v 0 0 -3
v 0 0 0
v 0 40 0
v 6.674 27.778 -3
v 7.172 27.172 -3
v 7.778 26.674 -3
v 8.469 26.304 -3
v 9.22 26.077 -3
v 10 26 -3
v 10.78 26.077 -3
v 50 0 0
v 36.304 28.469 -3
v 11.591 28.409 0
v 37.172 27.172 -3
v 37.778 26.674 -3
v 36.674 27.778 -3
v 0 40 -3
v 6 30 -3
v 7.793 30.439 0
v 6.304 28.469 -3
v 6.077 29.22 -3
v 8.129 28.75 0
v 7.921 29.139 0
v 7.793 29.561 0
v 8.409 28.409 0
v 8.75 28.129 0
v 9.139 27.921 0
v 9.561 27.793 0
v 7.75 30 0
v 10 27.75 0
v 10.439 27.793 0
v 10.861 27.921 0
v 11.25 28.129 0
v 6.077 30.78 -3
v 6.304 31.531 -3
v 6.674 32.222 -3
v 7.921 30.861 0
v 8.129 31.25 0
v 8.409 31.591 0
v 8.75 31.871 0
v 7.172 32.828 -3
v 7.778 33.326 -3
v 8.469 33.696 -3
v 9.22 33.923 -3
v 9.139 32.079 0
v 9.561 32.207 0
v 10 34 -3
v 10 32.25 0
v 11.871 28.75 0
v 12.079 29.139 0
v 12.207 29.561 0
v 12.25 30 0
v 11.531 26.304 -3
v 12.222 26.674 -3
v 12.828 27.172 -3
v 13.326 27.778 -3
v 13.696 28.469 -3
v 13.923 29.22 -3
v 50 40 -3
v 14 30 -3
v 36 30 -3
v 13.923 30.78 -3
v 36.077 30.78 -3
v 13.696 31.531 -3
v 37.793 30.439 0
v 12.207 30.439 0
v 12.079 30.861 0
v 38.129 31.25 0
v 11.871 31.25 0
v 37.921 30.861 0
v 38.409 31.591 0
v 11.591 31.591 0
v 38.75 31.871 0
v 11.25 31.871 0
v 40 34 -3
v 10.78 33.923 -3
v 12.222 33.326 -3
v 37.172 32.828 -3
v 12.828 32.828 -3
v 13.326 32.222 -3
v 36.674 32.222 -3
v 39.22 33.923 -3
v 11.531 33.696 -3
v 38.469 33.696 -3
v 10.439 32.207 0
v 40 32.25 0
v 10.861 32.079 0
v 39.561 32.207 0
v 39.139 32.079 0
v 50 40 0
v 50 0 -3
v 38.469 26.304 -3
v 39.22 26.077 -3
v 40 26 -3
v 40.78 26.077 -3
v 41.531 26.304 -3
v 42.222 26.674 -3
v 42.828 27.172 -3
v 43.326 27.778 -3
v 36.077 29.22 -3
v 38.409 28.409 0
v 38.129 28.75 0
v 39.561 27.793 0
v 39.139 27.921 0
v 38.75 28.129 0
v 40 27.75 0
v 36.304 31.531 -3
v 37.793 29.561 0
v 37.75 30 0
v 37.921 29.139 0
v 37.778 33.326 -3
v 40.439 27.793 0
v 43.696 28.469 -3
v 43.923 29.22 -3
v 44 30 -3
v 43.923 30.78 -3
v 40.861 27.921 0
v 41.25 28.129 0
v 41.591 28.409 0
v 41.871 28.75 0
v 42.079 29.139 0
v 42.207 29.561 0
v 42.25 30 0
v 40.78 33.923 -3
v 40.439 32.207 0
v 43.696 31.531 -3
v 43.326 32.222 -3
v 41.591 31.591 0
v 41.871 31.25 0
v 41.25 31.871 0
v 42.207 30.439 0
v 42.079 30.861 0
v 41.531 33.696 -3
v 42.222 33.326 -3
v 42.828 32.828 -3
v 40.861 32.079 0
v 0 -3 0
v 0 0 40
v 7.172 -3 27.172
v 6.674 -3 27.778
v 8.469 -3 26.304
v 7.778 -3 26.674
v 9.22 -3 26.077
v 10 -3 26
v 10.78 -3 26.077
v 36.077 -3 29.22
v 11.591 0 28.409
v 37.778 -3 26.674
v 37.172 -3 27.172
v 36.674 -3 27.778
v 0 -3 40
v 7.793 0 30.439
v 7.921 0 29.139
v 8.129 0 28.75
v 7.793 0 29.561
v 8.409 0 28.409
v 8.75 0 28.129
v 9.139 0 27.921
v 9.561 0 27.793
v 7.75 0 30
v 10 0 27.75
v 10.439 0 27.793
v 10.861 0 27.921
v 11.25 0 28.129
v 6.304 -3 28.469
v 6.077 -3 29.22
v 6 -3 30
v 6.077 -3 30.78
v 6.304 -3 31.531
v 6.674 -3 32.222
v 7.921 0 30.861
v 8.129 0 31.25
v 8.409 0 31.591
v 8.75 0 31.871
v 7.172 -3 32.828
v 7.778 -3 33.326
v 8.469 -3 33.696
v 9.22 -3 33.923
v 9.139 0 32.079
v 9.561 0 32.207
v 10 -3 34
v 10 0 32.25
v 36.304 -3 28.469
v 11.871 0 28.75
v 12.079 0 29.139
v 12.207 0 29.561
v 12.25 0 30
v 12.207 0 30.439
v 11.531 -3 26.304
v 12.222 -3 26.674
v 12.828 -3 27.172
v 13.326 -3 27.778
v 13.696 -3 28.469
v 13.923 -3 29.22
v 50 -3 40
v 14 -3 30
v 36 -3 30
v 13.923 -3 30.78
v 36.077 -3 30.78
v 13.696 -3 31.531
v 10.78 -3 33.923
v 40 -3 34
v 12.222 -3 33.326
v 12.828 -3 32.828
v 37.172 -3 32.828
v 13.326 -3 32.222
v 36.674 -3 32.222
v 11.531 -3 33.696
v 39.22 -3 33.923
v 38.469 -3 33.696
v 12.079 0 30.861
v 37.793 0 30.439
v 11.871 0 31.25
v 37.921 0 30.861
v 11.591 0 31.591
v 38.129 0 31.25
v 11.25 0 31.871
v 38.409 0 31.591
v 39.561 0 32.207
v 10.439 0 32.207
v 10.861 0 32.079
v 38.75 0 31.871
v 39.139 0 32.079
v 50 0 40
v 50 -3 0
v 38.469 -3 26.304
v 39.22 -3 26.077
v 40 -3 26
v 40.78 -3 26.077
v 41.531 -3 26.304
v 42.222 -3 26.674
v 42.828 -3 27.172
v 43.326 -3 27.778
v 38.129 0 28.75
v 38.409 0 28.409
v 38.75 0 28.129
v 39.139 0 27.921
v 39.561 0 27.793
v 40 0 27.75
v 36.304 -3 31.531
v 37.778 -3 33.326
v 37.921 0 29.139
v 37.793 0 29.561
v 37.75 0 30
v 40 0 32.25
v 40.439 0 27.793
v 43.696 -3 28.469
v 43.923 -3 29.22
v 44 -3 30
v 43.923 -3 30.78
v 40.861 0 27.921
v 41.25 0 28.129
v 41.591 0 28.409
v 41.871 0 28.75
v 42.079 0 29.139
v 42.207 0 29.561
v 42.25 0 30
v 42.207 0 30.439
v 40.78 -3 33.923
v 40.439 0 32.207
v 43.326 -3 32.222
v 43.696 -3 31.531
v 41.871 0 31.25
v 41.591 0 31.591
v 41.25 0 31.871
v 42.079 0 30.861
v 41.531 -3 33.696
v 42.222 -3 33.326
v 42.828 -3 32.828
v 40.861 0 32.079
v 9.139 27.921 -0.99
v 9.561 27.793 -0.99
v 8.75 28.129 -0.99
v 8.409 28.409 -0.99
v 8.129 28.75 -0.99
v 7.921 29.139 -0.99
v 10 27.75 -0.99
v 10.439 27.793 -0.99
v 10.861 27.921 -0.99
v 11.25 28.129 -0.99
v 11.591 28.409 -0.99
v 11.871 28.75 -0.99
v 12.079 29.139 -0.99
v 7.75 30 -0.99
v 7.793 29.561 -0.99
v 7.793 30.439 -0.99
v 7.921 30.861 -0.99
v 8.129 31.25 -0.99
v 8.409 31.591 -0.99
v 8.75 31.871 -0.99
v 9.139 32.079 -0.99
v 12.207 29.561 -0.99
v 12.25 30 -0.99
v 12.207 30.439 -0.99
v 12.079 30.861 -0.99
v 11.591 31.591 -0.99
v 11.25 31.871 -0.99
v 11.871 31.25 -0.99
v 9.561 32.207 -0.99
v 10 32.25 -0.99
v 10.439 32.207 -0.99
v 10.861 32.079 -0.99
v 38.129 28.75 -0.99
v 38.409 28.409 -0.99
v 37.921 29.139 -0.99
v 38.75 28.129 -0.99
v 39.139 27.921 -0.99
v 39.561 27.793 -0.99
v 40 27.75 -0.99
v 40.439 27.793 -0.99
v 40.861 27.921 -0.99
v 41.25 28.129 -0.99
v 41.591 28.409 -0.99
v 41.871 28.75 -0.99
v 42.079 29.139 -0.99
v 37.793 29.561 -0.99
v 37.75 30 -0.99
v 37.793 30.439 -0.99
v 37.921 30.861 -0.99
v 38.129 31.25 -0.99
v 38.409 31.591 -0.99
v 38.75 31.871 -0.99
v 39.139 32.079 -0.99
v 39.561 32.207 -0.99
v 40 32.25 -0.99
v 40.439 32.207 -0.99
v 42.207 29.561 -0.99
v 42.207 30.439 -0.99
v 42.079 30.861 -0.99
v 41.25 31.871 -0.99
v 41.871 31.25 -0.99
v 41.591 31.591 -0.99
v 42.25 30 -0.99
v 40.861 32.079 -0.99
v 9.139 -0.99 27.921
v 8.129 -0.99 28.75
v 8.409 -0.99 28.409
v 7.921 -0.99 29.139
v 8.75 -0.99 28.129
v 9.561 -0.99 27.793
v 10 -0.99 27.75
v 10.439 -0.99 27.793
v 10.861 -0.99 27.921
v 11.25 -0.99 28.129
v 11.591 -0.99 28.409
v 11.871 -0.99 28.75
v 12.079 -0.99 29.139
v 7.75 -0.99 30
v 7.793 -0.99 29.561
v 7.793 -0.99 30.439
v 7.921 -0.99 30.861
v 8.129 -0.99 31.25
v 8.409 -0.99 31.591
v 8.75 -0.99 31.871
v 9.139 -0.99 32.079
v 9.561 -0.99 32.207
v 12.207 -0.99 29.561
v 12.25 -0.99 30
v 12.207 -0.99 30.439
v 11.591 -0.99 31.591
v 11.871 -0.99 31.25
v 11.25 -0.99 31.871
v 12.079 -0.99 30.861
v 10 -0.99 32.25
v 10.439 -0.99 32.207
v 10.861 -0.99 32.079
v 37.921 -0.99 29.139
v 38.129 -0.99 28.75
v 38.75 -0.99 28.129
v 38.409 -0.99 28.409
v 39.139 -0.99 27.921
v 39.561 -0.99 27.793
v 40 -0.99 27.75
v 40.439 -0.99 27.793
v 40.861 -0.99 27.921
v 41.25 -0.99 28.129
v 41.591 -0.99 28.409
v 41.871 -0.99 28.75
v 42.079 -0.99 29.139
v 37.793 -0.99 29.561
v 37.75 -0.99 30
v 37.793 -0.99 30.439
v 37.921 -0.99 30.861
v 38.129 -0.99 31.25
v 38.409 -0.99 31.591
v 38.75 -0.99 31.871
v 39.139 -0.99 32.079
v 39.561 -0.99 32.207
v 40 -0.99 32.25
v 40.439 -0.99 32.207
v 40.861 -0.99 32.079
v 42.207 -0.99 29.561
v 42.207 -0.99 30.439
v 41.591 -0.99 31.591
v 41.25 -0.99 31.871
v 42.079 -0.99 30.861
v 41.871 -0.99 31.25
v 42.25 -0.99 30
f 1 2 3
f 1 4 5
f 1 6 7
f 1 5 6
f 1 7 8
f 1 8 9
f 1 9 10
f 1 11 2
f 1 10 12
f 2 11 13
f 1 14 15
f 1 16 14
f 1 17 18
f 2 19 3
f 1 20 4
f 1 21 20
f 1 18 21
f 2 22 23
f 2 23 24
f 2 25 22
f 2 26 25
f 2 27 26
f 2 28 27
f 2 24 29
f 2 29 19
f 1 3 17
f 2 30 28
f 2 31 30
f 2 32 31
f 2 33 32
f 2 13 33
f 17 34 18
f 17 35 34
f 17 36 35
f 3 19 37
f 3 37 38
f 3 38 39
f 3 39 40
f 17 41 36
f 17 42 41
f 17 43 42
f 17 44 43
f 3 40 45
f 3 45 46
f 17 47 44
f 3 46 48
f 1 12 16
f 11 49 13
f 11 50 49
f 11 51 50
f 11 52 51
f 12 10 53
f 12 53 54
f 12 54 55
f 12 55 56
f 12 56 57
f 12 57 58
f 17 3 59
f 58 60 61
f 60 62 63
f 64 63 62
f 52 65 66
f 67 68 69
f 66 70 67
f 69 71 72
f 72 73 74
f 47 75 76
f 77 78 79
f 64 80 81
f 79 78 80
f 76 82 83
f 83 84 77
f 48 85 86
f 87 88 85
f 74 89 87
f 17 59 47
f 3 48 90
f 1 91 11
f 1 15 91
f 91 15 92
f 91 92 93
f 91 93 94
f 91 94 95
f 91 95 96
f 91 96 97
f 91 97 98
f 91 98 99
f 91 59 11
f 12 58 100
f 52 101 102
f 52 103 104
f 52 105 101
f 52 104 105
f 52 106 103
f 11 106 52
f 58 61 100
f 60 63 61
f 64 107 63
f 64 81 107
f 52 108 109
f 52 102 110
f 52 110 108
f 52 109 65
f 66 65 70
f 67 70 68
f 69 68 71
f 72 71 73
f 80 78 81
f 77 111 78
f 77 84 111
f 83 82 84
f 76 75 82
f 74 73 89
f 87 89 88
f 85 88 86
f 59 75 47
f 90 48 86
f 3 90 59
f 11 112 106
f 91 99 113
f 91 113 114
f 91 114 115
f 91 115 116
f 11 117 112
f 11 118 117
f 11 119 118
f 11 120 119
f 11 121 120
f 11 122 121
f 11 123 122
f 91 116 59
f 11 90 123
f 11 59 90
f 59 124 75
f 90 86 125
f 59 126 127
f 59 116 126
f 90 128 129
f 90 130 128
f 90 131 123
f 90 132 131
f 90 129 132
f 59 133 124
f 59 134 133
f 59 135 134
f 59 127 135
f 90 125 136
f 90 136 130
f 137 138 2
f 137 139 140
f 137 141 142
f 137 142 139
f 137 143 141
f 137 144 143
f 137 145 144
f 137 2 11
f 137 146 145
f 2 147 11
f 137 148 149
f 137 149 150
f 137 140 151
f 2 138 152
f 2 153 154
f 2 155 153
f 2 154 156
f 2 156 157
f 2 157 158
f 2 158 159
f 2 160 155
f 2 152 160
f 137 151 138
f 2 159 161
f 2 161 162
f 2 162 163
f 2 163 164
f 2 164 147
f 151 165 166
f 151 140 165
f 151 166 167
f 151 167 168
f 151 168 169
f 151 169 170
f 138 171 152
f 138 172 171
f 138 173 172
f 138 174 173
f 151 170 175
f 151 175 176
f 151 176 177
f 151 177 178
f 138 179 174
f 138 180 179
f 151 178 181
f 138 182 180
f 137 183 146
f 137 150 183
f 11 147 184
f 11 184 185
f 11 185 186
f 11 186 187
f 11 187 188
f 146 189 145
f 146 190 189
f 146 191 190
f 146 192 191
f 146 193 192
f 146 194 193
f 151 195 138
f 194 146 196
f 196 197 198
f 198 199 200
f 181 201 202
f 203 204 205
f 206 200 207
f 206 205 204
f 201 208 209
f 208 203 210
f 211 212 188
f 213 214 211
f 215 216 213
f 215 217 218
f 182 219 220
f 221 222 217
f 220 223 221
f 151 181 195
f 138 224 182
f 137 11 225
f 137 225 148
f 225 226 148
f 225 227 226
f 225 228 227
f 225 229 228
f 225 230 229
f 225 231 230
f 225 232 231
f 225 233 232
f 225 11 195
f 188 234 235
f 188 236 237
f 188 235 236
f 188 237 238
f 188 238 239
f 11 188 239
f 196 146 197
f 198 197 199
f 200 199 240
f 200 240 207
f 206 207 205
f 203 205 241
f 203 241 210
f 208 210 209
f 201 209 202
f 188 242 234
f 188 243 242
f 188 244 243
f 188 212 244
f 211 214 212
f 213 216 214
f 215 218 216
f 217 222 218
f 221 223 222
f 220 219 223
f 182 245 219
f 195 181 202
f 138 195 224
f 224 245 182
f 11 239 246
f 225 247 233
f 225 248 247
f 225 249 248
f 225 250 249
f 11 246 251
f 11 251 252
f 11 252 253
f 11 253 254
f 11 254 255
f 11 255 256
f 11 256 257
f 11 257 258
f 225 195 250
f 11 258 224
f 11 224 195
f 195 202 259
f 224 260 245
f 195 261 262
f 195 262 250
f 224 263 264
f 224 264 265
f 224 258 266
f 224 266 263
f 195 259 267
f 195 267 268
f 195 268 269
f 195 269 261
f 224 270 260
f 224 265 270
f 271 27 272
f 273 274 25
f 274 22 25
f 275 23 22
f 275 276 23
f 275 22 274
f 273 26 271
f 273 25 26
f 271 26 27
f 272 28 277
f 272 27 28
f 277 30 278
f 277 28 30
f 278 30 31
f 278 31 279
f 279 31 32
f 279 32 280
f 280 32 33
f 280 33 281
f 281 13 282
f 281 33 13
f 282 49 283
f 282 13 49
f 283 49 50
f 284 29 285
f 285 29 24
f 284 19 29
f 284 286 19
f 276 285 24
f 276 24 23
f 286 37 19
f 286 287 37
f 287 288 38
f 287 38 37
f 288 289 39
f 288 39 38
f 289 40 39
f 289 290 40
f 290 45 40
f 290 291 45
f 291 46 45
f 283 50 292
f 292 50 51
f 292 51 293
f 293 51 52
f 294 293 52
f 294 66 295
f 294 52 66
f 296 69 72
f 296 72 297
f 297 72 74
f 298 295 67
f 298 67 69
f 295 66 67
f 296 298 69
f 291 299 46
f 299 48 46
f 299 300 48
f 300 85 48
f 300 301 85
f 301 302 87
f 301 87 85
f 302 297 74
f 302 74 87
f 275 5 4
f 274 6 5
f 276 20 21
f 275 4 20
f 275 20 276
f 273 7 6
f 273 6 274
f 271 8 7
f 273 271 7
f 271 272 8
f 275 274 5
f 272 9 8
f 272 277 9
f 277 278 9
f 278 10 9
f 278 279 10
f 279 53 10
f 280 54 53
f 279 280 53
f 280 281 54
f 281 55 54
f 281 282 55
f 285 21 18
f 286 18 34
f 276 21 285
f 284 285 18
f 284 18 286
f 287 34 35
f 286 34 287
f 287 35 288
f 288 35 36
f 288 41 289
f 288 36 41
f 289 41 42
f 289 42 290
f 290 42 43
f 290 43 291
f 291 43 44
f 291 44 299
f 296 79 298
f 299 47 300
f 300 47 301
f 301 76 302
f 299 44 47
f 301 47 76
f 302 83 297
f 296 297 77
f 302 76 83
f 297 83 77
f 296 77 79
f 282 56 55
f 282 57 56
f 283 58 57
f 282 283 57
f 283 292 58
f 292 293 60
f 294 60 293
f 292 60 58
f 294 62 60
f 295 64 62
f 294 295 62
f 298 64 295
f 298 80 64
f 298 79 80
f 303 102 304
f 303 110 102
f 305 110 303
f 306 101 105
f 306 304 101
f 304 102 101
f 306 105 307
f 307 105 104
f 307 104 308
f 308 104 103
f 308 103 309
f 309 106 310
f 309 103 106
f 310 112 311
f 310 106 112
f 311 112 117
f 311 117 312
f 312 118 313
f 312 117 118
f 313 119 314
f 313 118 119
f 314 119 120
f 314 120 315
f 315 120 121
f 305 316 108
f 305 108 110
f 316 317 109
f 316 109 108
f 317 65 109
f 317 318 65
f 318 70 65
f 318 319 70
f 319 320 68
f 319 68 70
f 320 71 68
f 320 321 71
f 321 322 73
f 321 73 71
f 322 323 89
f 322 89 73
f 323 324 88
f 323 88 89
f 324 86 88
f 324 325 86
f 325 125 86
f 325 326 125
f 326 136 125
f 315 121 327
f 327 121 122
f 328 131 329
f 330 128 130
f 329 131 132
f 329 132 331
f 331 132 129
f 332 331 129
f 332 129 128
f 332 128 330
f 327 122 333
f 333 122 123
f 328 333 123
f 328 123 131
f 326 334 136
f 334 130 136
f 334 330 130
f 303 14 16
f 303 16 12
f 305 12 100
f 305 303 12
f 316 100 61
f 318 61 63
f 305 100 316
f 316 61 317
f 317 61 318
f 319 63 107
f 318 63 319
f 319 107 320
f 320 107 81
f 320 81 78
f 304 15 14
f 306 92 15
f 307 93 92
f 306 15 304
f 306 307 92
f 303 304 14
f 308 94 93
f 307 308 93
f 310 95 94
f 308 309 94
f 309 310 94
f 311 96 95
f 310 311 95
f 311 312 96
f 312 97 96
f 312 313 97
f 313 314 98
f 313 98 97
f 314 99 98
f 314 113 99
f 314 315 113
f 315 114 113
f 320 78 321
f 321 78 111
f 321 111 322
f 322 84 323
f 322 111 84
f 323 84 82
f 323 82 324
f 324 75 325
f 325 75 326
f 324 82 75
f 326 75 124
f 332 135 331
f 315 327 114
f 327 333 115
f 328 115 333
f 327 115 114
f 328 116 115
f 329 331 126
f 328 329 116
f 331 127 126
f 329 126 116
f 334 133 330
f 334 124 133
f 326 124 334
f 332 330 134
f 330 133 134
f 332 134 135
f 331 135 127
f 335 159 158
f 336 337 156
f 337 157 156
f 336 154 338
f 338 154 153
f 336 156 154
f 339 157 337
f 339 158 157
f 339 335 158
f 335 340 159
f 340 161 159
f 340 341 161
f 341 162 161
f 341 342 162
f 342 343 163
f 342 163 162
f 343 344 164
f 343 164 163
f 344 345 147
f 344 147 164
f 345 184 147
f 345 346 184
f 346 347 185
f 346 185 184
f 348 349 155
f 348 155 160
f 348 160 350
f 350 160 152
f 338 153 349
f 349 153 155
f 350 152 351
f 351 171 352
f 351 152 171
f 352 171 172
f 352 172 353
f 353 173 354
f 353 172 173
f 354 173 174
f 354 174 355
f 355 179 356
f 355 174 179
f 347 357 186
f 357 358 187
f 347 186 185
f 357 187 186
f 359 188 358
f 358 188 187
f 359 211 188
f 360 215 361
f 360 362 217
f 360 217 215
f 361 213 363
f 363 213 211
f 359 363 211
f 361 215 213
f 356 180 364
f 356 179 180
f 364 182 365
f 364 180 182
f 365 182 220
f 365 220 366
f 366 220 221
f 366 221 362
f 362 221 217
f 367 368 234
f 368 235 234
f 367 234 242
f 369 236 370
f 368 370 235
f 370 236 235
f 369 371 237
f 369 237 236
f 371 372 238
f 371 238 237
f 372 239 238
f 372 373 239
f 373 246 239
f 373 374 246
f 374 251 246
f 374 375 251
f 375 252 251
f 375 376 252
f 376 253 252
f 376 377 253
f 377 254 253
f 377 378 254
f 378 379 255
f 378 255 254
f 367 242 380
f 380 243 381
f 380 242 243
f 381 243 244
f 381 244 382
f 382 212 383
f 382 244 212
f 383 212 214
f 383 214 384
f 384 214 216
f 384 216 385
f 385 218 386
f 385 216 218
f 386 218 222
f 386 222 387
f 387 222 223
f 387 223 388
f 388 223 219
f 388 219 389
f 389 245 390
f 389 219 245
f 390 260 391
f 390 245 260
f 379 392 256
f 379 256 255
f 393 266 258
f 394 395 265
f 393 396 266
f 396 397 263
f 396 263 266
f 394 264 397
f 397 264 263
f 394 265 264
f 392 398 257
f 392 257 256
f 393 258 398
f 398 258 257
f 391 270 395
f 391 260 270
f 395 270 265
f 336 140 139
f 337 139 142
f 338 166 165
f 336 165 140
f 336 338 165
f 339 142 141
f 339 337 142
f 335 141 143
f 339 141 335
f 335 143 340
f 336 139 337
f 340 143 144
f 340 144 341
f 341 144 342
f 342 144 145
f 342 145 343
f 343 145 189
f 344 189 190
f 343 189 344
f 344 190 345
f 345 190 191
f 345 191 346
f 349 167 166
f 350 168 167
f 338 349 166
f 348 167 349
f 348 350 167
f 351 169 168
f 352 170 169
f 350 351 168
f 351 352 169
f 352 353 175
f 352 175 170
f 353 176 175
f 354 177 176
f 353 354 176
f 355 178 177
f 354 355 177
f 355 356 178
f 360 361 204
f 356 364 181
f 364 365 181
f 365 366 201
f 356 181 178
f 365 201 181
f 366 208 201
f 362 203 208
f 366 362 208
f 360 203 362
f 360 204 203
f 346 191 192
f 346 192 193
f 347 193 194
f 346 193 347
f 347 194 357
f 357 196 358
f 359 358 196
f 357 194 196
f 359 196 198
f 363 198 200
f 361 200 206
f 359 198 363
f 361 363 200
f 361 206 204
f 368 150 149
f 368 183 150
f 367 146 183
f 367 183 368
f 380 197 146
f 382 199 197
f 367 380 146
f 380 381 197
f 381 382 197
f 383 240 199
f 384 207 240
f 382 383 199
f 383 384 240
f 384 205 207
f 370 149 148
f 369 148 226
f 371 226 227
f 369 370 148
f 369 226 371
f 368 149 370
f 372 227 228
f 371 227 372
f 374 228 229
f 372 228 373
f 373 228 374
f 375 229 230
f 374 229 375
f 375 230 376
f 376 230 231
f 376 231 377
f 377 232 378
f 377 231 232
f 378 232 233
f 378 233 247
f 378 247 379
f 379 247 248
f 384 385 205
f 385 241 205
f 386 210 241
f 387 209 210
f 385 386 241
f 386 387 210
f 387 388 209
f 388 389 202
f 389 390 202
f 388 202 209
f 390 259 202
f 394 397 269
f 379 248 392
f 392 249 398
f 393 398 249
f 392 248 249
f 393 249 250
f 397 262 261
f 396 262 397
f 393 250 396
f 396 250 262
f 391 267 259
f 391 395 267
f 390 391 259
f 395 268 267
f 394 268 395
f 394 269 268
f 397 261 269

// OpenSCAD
// L-Bracket (L字金具)
// 内側コーナーが原点、水平面は+Y方向、垂直面は+Z方向

// パラメータ
width       = 50;   // 幅 (X方向)
flange_len  = 40;   // 各フランジの長さ (水平:Y方向, 垂直:Z方向)
thickness   = 3;    // 板厚
hole_d      = 4.5;  // 貫通穴径 (M4)
cs_d        = 8;    // 皿座面径
cs_depth    = 2;    // 皿座面深さ
hole_inset  = 10;   // 縁からの距離
hole_offset = width / 2 - hole_inset; // 中心線からの左右オフセット = 15mm

module countersunk_hole(depth, from_outside=true) {
    // 貫通穴
    cylinder(d=hole_d, h=depth + 1, center=false, $fn=32);
    // 皿座面 (外側から)
    if (from_outside) {
        translate([0, 0, depth - cs_depth])
            cylinder(d1=hole_d, d2=cs_d, h=cs_depth + 0.01, $fn=32);
        // 皿座面の上をフラットにカット（面より上には出ない）
    }
}

module l_bracket() {
    difference() {
        union() {
            // 水平面フランジ: X方向 width, Y方向 flange_len, Z方向 thickness
            // Z: -thickness ~ 0, Y: 0 ~ flange_len
            translate([0, 0, -thickness])
                cube([width, flange_len, thickness]);

            // 垂直面フランジ: X方向 width, Y方向 thickness, Z方向 flange_len
            // Y: -thickness ~ 0, Z: 0 ~ flange_len
            translate([0, -thickness, 0])
                cube([width, thickness, flange_len]);
        }

        // --- 水平面の皿穴 (2個) ---
        // 皿座面は外側(Z下面, Z=-thickness) → 穴はZ=-thickness から上向きに開ける
        // 縁から10mm内側: Y方向の縁はY=flange_len → Y = flange_len - hole_inset = 30
        // 左右対称: X = width/2 ± hole_offset = 25 ± 15 → X=10, X=40
        for (x = [width/2 - hole_offset, width/2 + hole_offset]) {
            translate([x, flange_len - hole_inset, -thickness]) {
                // 貫通穴
                cylinder(d=hole_d, h=thickness + 1, $fn=32);
                // 皿座面は外側(下面 Z=-thickness)→ translate Z=0 で下向きに掘る
                // 皿: 下面から cs_depth 掘り上げる → Z=0 から Z=cs_depth まで
                // 皿形状: 下面(Z=0)で径 cs_d, 上(Z=cs_depth)で径 hole_d
                cylinder(d1=cs_d, d2=hole_d, h=cs_depth + 0.01, $fn=32);
            }
        }

        // --- 垂直面の皿穴 (2個) ---
        // 皿座面は外側(Y下面, Y=-thickness) → 穴はY=-thickness から +Y方向に開ける
        // 縁から10mm内側: Z方向の縁はZ=flange_len → Z = flange_len - hole_inset = 30
        // 左右対称: X=10, X=40
        for (x = [width/2 - hole_offset, width/2 + hole_offset]) {
            translate([x, -thickness, flange_len - hole_inset]) {
                // Y方向に穴を開ける → rotate around X
                rotate([-90, 0, 0]) {
                    // 貫通穴
                    cylinder(d=hole_d, h=thickness + 1, $fn=32);
                    // 皿座面は外側(Y=-thickness面)→ Z=0 (外面) から内側へ cs_depth
                    cylinder(d1=cs_d, d2=hole_d, h=cs_depth + 0.01, $fn=32);
                }
            }
        }
    }
}

l_bracket();
